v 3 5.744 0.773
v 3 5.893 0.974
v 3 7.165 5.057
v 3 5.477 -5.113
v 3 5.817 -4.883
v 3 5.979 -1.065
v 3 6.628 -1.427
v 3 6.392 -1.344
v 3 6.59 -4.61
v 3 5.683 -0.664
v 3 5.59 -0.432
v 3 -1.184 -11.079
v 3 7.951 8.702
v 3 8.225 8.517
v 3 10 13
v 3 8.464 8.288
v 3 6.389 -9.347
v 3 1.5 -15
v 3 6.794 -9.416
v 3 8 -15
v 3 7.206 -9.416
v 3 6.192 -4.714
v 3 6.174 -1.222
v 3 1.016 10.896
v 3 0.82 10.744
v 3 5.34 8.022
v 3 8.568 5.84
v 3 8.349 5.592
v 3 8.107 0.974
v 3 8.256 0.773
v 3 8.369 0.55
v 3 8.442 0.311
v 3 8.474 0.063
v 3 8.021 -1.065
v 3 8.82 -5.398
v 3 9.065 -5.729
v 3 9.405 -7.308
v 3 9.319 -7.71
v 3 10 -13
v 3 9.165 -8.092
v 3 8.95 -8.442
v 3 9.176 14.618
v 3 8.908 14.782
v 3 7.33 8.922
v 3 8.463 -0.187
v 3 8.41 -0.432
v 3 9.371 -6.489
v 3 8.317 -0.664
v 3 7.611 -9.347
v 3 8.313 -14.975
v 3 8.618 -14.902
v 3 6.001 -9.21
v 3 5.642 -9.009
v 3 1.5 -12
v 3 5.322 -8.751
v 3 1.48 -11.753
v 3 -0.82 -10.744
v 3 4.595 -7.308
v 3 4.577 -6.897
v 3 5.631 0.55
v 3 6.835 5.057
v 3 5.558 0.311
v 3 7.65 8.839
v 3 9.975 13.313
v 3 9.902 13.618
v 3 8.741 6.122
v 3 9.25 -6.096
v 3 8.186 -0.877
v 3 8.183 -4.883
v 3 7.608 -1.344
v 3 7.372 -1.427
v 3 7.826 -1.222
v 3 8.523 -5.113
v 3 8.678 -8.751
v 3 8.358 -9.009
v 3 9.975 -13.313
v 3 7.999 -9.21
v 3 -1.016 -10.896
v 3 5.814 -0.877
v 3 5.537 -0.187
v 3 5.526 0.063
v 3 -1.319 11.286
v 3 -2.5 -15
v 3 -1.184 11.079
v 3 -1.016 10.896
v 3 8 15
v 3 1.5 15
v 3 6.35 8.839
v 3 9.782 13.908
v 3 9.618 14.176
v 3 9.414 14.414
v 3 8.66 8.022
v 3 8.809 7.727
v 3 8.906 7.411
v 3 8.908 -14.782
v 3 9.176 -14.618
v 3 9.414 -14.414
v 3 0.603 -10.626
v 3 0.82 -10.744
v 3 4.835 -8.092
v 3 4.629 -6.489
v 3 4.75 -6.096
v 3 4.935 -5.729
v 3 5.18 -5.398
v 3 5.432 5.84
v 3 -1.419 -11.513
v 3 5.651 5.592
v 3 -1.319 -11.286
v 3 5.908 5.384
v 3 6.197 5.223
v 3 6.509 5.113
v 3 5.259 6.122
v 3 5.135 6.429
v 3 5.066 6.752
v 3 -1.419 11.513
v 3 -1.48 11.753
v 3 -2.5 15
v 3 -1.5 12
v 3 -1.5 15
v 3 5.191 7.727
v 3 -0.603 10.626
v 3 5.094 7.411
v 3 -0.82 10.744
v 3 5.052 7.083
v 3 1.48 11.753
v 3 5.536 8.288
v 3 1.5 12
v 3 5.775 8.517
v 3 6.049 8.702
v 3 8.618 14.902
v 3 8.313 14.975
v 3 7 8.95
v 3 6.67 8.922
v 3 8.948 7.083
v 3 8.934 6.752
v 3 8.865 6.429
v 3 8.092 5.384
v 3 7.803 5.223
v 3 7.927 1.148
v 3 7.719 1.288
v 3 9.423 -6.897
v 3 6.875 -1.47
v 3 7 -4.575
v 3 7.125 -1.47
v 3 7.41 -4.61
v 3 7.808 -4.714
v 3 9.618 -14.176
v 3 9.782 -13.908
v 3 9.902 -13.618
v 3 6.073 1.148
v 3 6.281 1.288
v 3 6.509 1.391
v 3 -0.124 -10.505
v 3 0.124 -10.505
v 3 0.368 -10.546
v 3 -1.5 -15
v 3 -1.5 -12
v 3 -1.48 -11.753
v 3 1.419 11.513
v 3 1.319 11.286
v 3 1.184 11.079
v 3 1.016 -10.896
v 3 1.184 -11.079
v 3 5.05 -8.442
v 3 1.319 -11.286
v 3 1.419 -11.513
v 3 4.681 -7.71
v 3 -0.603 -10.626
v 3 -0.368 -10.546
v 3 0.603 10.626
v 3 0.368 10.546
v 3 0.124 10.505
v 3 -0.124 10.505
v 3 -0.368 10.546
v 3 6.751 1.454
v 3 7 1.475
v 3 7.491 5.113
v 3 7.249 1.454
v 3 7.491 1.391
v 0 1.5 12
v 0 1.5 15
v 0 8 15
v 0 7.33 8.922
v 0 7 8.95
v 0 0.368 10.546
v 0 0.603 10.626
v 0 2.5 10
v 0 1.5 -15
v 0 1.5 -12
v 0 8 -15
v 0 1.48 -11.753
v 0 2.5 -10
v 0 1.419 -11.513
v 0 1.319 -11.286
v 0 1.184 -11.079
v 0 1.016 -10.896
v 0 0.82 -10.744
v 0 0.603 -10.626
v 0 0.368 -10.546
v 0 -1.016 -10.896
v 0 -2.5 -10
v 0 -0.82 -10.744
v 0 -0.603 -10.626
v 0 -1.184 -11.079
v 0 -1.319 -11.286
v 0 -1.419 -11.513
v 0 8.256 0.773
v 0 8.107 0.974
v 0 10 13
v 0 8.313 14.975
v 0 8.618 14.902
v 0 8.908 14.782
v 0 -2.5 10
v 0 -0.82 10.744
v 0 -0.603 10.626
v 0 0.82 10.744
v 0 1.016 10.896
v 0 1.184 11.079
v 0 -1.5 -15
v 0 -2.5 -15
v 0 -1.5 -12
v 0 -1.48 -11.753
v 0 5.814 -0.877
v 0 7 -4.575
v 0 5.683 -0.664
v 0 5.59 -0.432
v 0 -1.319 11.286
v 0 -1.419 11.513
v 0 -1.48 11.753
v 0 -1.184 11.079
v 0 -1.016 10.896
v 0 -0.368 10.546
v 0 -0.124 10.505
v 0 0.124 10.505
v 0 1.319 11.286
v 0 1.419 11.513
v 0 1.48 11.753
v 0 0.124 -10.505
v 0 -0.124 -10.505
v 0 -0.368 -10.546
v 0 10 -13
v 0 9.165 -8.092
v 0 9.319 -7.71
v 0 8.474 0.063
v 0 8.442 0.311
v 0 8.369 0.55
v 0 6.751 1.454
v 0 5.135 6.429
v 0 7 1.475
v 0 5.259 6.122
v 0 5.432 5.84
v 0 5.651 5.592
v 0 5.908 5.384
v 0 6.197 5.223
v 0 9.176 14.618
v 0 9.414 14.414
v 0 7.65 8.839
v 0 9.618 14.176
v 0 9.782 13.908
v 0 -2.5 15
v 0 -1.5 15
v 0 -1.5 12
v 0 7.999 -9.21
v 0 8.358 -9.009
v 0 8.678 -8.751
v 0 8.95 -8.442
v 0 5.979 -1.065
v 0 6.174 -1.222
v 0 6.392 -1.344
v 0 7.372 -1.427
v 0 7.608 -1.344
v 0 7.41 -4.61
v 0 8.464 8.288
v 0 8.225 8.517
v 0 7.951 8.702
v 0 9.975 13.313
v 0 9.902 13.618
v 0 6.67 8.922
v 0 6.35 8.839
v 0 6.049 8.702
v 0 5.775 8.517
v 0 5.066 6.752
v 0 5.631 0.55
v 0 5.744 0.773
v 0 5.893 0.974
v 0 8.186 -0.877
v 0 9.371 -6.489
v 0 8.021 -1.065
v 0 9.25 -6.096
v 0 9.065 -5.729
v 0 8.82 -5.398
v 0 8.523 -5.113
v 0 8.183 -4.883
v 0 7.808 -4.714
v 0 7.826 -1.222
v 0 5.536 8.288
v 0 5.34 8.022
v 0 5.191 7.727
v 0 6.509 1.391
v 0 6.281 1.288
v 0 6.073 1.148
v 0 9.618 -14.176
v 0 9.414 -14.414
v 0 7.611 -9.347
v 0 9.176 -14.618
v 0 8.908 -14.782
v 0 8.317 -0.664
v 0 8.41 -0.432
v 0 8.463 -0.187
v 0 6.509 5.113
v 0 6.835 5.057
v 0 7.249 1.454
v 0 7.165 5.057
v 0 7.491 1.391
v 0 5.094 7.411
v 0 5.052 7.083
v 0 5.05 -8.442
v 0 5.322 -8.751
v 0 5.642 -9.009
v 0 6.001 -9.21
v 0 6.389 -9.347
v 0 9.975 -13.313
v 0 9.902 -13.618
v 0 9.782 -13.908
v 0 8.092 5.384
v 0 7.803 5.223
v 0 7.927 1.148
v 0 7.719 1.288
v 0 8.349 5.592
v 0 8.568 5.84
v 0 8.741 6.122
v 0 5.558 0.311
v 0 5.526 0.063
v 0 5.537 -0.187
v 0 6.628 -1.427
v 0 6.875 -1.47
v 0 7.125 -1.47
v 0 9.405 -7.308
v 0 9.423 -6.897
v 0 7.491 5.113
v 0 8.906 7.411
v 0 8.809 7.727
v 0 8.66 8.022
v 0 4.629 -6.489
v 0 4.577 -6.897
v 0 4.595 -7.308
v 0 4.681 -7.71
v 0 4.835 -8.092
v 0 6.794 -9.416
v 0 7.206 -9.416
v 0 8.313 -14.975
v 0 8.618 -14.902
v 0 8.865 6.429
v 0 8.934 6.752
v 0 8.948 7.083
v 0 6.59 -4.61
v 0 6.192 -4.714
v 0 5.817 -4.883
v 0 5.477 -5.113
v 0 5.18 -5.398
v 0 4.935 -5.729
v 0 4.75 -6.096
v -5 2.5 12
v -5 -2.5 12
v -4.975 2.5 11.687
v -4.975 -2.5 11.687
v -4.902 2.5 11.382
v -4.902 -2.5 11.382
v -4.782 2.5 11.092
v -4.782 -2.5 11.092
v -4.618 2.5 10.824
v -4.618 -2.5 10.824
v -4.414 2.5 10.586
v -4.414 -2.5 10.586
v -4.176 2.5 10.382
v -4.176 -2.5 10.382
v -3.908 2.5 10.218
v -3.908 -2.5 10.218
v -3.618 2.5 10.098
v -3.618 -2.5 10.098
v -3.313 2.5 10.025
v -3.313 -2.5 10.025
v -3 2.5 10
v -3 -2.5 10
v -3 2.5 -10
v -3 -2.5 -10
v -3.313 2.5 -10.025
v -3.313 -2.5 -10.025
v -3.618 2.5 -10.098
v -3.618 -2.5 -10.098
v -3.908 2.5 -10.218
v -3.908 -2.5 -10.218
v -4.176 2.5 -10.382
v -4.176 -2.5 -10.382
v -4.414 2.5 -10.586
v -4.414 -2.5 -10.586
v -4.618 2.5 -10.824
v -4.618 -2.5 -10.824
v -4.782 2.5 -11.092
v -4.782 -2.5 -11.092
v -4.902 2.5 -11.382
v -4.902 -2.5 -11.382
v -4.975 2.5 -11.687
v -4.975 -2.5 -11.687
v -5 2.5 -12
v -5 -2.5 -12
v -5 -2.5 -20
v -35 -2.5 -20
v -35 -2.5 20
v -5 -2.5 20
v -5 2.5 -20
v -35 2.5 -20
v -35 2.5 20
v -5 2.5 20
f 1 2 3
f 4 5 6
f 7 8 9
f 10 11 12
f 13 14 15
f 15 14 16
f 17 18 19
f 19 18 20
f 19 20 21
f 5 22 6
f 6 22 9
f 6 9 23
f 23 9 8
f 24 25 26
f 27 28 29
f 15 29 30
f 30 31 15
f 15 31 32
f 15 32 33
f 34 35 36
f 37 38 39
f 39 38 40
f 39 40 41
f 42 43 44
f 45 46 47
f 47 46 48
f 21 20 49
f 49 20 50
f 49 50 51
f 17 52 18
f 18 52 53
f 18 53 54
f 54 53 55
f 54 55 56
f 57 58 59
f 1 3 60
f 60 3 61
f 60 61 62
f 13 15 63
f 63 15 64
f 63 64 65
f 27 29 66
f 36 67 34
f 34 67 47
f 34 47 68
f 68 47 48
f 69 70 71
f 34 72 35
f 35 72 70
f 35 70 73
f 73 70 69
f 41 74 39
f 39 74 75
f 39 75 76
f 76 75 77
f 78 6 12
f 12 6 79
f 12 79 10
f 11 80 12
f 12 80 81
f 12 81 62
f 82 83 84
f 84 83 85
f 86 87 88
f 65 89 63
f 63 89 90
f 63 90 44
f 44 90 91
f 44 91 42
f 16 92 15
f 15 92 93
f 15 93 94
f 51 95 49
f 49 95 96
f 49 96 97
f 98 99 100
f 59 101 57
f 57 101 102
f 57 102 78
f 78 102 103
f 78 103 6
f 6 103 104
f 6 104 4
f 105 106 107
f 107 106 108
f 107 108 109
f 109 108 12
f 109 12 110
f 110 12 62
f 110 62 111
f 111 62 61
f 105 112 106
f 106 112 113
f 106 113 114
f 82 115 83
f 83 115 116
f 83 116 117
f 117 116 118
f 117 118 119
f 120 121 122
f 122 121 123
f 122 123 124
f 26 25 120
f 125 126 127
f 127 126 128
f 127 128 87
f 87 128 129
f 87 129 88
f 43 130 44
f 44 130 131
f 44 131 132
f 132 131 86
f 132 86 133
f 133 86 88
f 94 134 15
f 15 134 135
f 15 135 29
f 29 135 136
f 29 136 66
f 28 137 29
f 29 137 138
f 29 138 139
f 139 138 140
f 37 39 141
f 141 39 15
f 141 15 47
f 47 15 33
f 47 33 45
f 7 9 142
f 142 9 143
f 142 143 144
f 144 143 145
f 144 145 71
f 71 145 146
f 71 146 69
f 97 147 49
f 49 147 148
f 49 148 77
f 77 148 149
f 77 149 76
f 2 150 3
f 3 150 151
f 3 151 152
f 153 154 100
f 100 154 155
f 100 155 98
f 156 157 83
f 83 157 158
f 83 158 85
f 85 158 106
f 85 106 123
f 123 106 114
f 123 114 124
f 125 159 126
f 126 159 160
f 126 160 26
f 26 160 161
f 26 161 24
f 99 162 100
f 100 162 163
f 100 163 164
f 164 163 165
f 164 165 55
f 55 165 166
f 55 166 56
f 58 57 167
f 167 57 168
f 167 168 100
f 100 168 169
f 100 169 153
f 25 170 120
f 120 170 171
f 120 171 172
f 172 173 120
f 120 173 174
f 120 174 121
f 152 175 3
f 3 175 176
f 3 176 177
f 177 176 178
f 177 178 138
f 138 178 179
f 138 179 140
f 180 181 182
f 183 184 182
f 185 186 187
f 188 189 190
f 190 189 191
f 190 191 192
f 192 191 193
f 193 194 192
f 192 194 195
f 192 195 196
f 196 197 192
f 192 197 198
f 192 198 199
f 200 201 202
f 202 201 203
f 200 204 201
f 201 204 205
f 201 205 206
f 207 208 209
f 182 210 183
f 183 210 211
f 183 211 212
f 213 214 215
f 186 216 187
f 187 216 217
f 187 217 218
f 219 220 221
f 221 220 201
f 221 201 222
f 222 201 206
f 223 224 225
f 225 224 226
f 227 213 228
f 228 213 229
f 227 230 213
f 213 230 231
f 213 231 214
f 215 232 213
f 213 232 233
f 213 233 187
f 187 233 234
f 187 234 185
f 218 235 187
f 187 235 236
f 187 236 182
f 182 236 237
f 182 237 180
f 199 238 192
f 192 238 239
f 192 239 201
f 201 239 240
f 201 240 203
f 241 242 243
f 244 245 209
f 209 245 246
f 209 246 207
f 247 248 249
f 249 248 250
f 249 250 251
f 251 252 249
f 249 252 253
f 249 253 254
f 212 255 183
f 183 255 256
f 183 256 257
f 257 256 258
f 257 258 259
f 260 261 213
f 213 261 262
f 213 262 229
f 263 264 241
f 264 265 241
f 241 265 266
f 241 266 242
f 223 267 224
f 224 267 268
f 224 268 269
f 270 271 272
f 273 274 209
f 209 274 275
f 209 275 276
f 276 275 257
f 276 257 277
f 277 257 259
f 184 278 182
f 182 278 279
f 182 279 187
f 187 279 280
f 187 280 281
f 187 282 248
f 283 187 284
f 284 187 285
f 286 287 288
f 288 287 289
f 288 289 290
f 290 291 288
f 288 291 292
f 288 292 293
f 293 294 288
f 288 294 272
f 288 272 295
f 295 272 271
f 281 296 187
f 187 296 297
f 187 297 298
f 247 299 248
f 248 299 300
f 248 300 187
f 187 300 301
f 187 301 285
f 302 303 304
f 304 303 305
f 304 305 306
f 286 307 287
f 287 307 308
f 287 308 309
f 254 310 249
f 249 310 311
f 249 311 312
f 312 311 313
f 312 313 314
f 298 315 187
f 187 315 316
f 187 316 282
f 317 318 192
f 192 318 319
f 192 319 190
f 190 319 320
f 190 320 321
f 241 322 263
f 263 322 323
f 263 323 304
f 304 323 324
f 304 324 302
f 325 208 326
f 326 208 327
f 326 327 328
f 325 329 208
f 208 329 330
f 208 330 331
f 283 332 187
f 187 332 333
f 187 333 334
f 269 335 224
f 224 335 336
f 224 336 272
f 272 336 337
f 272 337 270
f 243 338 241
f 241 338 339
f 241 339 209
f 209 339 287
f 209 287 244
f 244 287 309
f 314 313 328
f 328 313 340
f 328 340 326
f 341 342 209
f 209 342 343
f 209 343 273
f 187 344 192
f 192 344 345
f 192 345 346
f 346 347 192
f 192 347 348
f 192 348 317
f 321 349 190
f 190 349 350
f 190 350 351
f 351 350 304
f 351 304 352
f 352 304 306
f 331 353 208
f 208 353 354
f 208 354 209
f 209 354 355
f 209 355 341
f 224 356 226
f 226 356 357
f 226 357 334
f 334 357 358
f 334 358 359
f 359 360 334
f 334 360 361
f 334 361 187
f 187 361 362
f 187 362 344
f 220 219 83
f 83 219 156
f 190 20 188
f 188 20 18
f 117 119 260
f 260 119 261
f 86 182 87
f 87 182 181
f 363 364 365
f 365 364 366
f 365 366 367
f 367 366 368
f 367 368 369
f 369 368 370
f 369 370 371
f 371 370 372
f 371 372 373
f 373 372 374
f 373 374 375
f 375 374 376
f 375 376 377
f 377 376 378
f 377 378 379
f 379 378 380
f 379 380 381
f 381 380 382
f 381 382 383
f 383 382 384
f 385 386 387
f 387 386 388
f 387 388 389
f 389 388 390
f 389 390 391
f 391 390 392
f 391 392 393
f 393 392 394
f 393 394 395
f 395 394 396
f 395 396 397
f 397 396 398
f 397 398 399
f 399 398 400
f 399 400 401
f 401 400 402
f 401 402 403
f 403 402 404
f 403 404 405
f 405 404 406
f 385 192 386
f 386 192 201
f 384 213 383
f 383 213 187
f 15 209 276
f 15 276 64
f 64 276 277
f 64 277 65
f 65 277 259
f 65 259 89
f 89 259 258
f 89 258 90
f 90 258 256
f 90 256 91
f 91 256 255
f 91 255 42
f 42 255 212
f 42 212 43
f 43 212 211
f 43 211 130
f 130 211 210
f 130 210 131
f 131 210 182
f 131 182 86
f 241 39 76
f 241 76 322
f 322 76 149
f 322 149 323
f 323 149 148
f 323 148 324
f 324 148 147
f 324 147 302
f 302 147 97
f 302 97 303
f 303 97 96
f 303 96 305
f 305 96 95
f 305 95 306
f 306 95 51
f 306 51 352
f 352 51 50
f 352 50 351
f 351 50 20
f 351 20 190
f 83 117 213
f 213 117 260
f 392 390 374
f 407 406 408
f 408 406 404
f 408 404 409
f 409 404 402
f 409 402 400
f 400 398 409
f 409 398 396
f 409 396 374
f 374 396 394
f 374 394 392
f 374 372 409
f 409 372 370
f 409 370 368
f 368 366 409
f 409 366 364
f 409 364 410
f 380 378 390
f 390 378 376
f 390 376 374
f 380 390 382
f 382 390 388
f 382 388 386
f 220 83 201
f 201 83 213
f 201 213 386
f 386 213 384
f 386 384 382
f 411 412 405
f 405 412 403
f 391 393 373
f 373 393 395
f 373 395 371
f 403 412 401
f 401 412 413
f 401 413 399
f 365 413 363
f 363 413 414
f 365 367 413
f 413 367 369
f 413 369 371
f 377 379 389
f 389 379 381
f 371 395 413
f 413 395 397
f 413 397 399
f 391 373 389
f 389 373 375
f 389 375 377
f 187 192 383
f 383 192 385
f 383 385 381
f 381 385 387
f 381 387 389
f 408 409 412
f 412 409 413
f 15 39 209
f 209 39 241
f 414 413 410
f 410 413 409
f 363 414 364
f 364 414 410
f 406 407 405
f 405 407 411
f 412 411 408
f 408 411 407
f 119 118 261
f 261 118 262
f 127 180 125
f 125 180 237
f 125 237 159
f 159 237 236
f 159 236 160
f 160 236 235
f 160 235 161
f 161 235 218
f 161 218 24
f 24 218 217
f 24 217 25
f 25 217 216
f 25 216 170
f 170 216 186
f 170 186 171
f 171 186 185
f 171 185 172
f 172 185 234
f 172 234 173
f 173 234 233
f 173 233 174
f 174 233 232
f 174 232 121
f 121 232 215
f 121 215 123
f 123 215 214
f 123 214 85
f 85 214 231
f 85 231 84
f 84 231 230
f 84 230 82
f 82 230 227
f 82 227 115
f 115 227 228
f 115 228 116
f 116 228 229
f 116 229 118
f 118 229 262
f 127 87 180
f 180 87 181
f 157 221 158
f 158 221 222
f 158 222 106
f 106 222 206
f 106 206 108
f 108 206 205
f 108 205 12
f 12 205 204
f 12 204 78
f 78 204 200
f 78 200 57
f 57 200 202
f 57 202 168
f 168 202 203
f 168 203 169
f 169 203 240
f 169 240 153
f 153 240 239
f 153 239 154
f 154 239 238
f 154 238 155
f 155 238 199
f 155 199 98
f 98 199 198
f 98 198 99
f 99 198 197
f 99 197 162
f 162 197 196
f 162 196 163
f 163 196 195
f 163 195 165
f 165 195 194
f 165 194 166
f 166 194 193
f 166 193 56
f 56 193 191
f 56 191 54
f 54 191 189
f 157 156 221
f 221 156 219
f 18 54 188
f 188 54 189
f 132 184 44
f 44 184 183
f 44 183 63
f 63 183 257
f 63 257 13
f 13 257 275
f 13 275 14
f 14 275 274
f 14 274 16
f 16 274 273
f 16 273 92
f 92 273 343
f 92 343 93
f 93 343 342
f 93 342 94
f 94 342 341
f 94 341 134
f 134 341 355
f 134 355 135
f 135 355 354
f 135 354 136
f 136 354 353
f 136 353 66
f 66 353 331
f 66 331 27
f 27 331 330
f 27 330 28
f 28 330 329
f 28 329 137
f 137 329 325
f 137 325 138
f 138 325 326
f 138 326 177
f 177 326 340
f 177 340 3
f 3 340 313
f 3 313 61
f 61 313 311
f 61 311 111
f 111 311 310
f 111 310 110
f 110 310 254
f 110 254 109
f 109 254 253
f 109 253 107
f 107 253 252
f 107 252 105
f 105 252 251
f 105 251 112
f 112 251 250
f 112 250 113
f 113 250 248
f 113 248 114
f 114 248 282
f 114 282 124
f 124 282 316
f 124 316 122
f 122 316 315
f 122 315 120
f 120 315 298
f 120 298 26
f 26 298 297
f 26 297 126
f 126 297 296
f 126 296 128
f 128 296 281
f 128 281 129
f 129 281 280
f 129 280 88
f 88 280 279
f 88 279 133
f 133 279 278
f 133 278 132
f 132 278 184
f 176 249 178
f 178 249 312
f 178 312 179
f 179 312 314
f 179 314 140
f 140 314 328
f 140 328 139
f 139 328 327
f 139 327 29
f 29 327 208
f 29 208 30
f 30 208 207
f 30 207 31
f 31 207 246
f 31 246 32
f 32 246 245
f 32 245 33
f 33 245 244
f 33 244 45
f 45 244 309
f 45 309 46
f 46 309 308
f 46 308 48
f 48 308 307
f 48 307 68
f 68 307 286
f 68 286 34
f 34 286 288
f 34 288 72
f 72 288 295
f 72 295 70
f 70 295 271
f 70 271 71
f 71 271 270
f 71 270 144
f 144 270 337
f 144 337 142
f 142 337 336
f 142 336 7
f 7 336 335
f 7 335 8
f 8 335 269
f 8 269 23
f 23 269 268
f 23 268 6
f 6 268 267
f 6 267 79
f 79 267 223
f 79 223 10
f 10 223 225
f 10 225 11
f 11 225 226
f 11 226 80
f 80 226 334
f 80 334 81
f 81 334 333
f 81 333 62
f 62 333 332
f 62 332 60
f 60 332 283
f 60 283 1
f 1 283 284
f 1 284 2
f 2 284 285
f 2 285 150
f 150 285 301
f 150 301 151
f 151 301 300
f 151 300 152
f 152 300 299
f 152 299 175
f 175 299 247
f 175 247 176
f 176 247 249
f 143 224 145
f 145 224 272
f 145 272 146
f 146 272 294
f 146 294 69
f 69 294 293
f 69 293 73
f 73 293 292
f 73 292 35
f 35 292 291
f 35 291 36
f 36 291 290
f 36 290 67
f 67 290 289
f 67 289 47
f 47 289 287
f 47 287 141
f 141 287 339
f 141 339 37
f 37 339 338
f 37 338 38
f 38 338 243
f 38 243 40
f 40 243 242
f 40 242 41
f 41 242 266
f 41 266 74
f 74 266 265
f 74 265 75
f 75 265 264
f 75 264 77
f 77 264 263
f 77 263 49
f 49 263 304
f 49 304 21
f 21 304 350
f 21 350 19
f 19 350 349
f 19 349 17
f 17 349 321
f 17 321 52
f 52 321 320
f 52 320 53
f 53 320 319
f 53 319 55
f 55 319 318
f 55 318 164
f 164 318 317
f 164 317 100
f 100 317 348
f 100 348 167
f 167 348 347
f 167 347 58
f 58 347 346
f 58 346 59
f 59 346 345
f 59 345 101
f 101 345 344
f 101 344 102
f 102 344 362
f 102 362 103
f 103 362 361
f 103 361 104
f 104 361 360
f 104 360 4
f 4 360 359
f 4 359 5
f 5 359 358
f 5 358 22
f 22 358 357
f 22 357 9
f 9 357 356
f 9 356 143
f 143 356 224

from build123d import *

# Parameters (mm, degrees)
SKETCH_1_W          = 20
SKETCH_1_H          = 5
EXTRUDE_1_DEPTH     = 35
SKETCH_2_W          = 30
SKETCH_2_H          = 20
EXTRUDE_2_DEPTH     = 3
FILLET_1_R          = 2
FILLET_2_R          = 2
FILLET_3_R          = 2
FILLET_4_R          = 2
SKETCH_4_W          = 30
SKETCH_4_H          = 40
EXTRUDE_3_DEPTH     = 2.5
FILLET_5_R          = 2
FILLET_6_R          = 2
CUT_EXTRUDE_2_DEPTH = 3
SKETCH_6_R          = 1.475
SKETCH_6_R_2        = 1.95
SKETCH_6_R_3        = 2.425
CUT_EXTRUDE_3_DEPTH = 3
SKETCH_8_W          = 3
SKETCH_8_H          = 7.5
CUT_EXTRUDE_4_DEPTH = 30


with BuildPart() as part:
    # 草图1 → 凸台-拉伸1 (new body)
    with BuildSketch(Plane(origin=(0, 0, 0), x_dir=(0, 0, -1), z_dir=(1, 0, 0))):
        Rectangle(SKETCH_1_W, SKETCH_1_H)
    extrude(amount=-EXTRUDE_1_DEPTH)

    # 草图2 → 凸台-拉伸2 (add)
    with BuildSketch(Plane(origin=(0, 0, 0), x_dir=(0, 0, -1), z_dir=(1, 0, 0))):
        Rectangle(SKETCH_2_W, SKETCH_2_H)
    extrude(amount=EXTRUDE_2_DEPTH)

    # 圆角1
    fillet_1_edges = [part.edges().sort_by_distance(p)[0] for p in [
        (1.5, 10, -15),
    ]]
    fillet(fillet_1_edges, radius=FILLET_1_R)

    # 圆角2
    fillet_2_edges = [part.edges().sort_by_distance(p)[0] for p in [
        (1.5, 10, 15),
    ]]
    fillet(fillet_2_edges, radius=FILLET_2_R)

    # 圆角3
    fillet_3_edges = [part.edges().sort_by_distance(p)[0] for p in [
        (1.5, -10, -15),
    ]]
    fillet(fillet_3_edges, radius=FILLET_3_R)

    # 圆角4
    fillet_4_edges = [part.edges().sort_by_distance(p)[0] for p in [
        (1.5, -10, 15),
    ]]
    fillet(fillet_4_edges, radius=FILLET_4_R)

    # 草图4 → 凸台-拉伸3 (add, symmetric)
    with BuildSketch(Plane(origin=(0, 0, 0), x_dir=(1, 0, 0), z_dir=(0, 1, 0))):
        with Locations((-20, 0)):
            Rectangle(SKETCH_4_W, SKETCH_4_H)
    extrude(amount=EXTRUDE_3_DEPTH, both=True)

    # 圆角5
    fillet_5_edges = [part.edges().sort_by_distance(p)[0] for p in [
        (-5, 0, -10),
    ]]
    fillet(fillet_5_edges, radius=FILLET_5_R)

    # 圆角6
    fillet_6_edges = [part.edges().sort_by_distance(p)[0] for p in [
        (-5, 0, 10),
    ]]
    fillet(fillet_6_edges, radius=FILLET_6_R)

    # 草图5 → 切除-拉伸2 (cut)
    with BuildSketch(Plane(origin=(0, 0, 0), x_dir=(0, 0, -1), z_dir=(1, 0, 0))):
        with BuildLine():
            Line((-12, -1.5), (-15, -1.5))
            Line((-15, -1.5), (-15, 1.5))
            Line((-15, 1.5), (-12, 1.5))
            ThreePointArc((-12, 1.5), (-10.5, 0), (-12, -1.5))
        make_face()
        with BuildLine():
            Line((12, 1.5), (15, 1.5))
            Line((15, 1.5), (15, -1.5))
            Line((15, -1.5), (12, -1.5))
            ThreePointArc((12, -1.5), (10.5, 0), (12, 1.5))
        make_face()
    extrude(amount=CUT_EXTRUDE_2_DEPTH, mode=Mode.SUBTRACT)

    # 草图6 → 切除-拉伸3 (cut)
    with BuildSketch(Plane(origin=(0, 0, 0), x_dir=(0, 0, -1), z_dir=(1, 0, 0))):
        with Locations((0, -7)):
            Circle(SKETCH_6_R)
        with Locations((-7, -7)):
            Circle(SKETCH_6_R_2)
        with Locations((7, -7)):
            Circle(SKETCH_6_R_3)
        with Locations(Location((7, 7, 0), (0, 0, 180))):
            Circle(SKETCH_6_R_3)
        with Locations(Location((0, 7, 0), (0, 0, 180))):
            Circle(SKETCH_6_R)
        with Locations(Location((-7, 7, 0), (0, 0, 180))):
            Circle(SKETCH_6_R_2)
    extrude(amount=CUT_EXTRUDE_3_DEPTH, mode=Mode.SUBTRACT)

    # 草图8 → 切除-拉伸4 (cut)
    with BuildSketch(Plane(origin=(0, 0, -15), x_dir=(-1, 0, 0), z_dir=(0, 0, -1))):
        with Locations((-1.5, -6.25)):
            Rectangle(SKETCH_8_W, SKETCH_8_H)
    extrude(amount=-CUT_EXTRUDE_4_DEPTH, mode=Mode.SUBTRACT)


solid = part.part
